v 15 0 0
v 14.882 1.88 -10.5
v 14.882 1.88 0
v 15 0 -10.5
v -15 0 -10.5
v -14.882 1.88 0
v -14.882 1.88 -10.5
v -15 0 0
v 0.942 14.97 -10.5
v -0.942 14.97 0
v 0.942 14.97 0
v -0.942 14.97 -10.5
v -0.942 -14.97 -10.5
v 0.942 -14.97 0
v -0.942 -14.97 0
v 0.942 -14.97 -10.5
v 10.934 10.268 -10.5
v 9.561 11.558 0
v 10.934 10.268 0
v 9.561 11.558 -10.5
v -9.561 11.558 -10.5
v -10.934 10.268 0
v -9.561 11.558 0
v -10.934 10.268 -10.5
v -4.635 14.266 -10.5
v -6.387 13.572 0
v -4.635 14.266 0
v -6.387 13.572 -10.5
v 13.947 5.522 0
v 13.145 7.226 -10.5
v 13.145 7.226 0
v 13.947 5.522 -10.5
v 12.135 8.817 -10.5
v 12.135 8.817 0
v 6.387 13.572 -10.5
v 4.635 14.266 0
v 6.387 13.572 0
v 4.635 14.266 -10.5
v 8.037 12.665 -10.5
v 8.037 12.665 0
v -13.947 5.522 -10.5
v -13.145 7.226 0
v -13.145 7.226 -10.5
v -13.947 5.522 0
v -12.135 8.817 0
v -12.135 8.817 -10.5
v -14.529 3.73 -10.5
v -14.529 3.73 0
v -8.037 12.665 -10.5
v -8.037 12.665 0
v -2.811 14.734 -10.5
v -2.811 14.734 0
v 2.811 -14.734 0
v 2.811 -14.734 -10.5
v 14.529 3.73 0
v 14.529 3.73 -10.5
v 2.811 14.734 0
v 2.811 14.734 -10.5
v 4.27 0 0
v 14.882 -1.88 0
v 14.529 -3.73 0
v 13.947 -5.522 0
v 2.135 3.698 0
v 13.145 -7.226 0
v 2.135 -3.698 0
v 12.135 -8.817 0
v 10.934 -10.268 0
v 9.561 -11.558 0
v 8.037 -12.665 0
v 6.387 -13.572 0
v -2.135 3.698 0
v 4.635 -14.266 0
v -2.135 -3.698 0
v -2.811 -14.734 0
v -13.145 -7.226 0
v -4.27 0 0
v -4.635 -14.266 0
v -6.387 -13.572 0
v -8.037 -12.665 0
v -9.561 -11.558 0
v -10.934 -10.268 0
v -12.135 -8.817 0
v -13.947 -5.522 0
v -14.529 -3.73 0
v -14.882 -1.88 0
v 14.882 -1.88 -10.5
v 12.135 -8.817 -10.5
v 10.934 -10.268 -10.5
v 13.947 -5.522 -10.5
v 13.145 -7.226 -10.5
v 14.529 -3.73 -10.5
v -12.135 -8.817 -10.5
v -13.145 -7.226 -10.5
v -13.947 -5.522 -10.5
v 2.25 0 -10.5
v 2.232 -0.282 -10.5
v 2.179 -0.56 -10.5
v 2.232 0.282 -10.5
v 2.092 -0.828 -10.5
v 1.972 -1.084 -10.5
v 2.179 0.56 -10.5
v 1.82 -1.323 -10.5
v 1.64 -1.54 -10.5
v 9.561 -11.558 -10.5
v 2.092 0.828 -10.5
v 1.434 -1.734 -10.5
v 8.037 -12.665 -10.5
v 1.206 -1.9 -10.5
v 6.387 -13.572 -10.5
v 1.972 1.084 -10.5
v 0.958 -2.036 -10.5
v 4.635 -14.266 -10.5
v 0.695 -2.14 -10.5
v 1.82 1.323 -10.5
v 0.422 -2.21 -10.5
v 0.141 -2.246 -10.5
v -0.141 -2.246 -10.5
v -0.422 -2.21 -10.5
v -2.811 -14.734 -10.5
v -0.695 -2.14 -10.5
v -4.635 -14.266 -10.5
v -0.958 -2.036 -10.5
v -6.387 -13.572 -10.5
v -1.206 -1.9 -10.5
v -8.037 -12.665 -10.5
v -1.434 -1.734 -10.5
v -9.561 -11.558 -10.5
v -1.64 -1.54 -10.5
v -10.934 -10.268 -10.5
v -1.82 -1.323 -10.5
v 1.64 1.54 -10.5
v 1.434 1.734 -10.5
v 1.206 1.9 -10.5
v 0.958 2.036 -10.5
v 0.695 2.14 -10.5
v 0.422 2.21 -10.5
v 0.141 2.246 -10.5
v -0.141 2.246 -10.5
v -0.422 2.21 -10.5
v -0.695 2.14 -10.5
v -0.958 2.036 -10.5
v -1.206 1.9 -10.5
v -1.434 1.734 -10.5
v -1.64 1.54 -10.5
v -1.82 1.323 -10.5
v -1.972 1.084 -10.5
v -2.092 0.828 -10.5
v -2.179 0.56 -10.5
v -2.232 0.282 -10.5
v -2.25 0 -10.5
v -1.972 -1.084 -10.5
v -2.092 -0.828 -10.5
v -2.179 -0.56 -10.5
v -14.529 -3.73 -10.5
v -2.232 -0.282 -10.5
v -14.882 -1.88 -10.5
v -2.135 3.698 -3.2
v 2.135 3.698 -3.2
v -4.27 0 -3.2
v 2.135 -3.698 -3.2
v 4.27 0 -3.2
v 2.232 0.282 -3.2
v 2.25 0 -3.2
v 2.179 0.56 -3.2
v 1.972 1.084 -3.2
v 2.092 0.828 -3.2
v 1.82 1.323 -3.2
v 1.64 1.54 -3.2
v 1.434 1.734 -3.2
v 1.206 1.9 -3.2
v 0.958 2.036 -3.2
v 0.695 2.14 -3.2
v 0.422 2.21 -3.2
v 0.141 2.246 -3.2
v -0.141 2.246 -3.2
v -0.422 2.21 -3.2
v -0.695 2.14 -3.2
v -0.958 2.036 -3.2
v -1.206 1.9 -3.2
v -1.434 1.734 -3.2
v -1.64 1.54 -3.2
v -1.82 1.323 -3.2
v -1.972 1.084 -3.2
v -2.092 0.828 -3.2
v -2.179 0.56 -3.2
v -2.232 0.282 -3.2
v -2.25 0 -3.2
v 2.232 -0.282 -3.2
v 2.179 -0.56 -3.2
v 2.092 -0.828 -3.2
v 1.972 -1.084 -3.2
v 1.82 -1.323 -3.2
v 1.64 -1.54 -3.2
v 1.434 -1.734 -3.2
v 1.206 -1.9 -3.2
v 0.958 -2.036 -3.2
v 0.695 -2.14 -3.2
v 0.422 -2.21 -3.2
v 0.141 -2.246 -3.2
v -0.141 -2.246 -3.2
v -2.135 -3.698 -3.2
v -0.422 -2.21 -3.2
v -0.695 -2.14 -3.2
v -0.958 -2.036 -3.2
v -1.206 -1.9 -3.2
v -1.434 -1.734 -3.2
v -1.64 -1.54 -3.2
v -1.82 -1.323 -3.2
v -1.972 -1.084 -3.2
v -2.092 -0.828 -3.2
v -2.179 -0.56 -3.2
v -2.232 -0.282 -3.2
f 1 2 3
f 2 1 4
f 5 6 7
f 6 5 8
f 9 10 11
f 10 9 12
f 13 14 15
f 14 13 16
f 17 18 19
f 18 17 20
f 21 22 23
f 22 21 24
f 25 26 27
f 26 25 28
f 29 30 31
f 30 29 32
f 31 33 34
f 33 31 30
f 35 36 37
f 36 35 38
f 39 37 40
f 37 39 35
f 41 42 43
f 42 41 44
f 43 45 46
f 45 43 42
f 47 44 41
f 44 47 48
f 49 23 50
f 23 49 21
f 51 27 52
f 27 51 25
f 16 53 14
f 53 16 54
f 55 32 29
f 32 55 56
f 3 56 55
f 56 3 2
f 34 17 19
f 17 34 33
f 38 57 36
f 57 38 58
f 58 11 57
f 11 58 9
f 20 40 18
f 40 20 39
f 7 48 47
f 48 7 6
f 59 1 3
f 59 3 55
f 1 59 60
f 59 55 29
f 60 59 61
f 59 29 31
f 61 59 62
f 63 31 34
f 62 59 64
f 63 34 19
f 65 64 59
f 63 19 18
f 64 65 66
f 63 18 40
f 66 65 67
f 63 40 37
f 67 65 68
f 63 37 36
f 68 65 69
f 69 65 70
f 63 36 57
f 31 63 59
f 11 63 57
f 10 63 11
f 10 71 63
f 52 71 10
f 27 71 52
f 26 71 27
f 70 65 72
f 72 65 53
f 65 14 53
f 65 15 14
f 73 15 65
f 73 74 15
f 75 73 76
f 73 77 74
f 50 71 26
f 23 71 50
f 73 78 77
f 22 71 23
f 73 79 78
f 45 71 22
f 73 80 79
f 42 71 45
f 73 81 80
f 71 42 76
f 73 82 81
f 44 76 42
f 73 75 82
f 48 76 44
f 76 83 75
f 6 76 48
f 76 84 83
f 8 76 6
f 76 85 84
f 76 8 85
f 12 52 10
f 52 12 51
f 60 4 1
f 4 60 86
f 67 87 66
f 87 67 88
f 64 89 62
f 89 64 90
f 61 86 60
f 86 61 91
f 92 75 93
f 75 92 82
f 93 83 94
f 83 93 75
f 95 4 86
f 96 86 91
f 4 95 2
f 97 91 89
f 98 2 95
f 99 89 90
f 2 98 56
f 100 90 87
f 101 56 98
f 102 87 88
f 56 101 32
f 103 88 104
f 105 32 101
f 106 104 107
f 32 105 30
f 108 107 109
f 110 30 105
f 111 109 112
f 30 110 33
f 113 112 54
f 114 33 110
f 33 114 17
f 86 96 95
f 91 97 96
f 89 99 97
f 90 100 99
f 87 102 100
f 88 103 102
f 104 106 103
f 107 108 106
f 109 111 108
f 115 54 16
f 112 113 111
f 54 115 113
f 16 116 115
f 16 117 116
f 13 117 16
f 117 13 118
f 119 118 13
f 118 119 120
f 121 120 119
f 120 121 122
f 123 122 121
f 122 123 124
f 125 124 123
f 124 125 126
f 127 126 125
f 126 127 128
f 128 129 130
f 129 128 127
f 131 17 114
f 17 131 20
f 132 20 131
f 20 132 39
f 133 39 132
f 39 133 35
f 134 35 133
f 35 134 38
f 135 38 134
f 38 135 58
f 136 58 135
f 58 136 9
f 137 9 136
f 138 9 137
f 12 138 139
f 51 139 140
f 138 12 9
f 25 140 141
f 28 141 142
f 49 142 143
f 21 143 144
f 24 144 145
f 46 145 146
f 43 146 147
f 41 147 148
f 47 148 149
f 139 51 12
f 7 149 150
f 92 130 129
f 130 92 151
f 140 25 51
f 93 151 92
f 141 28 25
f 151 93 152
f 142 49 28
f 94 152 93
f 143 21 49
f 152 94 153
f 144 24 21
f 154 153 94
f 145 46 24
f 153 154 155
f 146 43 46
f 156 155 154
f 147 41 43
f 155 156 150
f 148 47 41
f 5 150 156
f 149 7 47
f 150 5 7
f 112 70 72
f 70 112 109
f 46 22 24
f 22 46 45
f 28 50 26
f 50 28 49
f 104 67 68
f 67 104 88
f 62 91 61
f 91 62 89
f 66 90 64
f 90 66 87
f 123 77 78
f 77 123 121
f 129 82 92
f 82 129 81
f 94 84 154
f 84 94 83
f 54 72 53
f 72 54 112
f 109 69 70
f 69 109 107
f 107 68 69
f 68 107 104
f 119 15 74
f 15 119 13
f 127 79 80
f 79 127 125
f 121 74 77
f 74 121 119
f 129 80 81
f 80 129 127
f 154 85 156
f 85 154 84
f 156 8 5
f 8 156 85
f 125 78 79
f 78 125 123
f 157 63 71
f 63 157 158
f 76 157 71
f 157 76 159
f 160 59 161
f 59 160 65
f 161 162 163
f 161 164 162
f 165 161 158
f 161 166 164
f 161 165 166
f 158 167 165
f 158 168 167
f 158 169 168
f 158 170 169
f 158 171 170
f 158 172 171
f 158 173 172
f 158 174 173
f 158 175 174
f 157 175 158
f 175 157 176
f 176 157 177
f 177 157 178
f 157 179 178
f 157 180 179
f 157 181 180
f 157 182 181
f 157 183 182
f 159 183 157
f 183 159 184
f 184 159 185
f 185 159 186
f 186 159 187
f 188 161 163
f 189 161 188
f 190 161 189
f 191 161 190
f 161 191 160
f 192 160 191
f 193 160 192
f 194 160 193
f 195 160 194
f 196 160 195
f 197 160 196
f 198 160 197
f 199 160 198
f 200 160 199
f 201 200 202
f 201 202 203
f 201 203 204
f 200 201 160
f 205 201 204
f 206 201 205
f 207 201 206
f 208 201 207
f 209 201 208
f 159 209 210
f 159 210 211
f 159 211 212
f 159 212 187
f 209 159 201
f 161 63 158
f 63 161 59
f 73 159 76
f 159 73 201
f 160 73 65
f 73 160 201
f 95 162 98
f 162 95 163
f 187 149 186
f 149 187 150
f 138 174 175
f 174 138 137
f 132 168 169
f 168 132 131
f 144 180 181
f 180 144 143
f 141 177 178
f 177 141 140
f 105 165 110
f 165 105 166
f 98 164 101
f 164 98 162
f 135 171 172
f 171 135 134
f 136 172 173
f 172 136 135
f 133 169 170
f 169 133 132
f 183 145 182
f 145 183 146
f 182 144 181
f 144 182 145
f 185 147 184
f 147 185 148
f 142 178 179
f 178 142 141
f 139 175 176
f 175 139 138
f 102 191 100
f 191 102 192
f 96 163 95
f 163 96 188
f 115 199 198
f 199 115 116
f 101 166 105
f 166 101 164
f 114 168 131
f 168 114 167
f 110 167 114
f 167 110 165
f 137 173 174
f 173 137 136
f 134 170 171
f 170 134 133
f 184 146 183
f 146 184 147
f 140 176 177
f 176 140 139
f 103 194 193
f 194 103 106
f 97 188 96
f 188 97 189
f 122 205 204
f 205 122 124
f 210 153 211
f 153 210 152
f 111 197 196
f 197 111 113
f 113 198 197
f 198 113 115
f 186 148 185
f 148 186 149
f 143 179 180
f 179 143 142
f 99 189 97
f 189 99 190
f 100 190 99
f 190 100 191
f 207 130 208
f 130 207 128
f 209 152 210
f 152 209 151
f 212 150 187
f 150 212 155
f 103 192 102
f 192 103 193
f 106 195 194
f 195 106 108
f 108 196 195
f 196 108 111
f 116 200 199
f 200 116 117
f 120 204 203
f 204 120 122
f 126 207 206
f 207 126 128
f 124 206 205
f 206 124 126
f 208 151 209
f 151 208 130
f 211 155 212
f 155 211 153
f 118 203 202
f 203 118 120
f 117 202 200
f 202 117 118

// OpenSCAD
$fn = 50;


difference() {
	union() {
		translate(v = [0, 0, -10.5000000000]) {
			cylinder(h = 10.5000000000, r = 15.0000000000);
		}
		translate(v = [0, 0, -9.0000000000]) {
			cylinder(h = 9, r = 2.8750000000);
		}
	}
	union() {
		translate(v = [0, 0, 0]) {
			rotate(a = [0, 0, 0]) {
				difference() {
					union() {
						translate(v = [0, 0, -3.2000000000]) {
							linear_extrude(height = 3.2000000000) {
								polygon(points = [[4.2698000000, 0.0000000000], [2.1349000000, 3.6977552691], [-2.1349000000, 3.6977552691], [-4.2698000000, 0.0000000000], [-2.1349000000, -3.6977552691], [2.1349000000, -3.6977552691]]);
							}
						}
					}
					union();
				}
			}
		}
		#translate(v = [0, 0, -100.0000000000]) {
			cylinder(h = 200, r = 2.2500000000);
		}
	}
}
